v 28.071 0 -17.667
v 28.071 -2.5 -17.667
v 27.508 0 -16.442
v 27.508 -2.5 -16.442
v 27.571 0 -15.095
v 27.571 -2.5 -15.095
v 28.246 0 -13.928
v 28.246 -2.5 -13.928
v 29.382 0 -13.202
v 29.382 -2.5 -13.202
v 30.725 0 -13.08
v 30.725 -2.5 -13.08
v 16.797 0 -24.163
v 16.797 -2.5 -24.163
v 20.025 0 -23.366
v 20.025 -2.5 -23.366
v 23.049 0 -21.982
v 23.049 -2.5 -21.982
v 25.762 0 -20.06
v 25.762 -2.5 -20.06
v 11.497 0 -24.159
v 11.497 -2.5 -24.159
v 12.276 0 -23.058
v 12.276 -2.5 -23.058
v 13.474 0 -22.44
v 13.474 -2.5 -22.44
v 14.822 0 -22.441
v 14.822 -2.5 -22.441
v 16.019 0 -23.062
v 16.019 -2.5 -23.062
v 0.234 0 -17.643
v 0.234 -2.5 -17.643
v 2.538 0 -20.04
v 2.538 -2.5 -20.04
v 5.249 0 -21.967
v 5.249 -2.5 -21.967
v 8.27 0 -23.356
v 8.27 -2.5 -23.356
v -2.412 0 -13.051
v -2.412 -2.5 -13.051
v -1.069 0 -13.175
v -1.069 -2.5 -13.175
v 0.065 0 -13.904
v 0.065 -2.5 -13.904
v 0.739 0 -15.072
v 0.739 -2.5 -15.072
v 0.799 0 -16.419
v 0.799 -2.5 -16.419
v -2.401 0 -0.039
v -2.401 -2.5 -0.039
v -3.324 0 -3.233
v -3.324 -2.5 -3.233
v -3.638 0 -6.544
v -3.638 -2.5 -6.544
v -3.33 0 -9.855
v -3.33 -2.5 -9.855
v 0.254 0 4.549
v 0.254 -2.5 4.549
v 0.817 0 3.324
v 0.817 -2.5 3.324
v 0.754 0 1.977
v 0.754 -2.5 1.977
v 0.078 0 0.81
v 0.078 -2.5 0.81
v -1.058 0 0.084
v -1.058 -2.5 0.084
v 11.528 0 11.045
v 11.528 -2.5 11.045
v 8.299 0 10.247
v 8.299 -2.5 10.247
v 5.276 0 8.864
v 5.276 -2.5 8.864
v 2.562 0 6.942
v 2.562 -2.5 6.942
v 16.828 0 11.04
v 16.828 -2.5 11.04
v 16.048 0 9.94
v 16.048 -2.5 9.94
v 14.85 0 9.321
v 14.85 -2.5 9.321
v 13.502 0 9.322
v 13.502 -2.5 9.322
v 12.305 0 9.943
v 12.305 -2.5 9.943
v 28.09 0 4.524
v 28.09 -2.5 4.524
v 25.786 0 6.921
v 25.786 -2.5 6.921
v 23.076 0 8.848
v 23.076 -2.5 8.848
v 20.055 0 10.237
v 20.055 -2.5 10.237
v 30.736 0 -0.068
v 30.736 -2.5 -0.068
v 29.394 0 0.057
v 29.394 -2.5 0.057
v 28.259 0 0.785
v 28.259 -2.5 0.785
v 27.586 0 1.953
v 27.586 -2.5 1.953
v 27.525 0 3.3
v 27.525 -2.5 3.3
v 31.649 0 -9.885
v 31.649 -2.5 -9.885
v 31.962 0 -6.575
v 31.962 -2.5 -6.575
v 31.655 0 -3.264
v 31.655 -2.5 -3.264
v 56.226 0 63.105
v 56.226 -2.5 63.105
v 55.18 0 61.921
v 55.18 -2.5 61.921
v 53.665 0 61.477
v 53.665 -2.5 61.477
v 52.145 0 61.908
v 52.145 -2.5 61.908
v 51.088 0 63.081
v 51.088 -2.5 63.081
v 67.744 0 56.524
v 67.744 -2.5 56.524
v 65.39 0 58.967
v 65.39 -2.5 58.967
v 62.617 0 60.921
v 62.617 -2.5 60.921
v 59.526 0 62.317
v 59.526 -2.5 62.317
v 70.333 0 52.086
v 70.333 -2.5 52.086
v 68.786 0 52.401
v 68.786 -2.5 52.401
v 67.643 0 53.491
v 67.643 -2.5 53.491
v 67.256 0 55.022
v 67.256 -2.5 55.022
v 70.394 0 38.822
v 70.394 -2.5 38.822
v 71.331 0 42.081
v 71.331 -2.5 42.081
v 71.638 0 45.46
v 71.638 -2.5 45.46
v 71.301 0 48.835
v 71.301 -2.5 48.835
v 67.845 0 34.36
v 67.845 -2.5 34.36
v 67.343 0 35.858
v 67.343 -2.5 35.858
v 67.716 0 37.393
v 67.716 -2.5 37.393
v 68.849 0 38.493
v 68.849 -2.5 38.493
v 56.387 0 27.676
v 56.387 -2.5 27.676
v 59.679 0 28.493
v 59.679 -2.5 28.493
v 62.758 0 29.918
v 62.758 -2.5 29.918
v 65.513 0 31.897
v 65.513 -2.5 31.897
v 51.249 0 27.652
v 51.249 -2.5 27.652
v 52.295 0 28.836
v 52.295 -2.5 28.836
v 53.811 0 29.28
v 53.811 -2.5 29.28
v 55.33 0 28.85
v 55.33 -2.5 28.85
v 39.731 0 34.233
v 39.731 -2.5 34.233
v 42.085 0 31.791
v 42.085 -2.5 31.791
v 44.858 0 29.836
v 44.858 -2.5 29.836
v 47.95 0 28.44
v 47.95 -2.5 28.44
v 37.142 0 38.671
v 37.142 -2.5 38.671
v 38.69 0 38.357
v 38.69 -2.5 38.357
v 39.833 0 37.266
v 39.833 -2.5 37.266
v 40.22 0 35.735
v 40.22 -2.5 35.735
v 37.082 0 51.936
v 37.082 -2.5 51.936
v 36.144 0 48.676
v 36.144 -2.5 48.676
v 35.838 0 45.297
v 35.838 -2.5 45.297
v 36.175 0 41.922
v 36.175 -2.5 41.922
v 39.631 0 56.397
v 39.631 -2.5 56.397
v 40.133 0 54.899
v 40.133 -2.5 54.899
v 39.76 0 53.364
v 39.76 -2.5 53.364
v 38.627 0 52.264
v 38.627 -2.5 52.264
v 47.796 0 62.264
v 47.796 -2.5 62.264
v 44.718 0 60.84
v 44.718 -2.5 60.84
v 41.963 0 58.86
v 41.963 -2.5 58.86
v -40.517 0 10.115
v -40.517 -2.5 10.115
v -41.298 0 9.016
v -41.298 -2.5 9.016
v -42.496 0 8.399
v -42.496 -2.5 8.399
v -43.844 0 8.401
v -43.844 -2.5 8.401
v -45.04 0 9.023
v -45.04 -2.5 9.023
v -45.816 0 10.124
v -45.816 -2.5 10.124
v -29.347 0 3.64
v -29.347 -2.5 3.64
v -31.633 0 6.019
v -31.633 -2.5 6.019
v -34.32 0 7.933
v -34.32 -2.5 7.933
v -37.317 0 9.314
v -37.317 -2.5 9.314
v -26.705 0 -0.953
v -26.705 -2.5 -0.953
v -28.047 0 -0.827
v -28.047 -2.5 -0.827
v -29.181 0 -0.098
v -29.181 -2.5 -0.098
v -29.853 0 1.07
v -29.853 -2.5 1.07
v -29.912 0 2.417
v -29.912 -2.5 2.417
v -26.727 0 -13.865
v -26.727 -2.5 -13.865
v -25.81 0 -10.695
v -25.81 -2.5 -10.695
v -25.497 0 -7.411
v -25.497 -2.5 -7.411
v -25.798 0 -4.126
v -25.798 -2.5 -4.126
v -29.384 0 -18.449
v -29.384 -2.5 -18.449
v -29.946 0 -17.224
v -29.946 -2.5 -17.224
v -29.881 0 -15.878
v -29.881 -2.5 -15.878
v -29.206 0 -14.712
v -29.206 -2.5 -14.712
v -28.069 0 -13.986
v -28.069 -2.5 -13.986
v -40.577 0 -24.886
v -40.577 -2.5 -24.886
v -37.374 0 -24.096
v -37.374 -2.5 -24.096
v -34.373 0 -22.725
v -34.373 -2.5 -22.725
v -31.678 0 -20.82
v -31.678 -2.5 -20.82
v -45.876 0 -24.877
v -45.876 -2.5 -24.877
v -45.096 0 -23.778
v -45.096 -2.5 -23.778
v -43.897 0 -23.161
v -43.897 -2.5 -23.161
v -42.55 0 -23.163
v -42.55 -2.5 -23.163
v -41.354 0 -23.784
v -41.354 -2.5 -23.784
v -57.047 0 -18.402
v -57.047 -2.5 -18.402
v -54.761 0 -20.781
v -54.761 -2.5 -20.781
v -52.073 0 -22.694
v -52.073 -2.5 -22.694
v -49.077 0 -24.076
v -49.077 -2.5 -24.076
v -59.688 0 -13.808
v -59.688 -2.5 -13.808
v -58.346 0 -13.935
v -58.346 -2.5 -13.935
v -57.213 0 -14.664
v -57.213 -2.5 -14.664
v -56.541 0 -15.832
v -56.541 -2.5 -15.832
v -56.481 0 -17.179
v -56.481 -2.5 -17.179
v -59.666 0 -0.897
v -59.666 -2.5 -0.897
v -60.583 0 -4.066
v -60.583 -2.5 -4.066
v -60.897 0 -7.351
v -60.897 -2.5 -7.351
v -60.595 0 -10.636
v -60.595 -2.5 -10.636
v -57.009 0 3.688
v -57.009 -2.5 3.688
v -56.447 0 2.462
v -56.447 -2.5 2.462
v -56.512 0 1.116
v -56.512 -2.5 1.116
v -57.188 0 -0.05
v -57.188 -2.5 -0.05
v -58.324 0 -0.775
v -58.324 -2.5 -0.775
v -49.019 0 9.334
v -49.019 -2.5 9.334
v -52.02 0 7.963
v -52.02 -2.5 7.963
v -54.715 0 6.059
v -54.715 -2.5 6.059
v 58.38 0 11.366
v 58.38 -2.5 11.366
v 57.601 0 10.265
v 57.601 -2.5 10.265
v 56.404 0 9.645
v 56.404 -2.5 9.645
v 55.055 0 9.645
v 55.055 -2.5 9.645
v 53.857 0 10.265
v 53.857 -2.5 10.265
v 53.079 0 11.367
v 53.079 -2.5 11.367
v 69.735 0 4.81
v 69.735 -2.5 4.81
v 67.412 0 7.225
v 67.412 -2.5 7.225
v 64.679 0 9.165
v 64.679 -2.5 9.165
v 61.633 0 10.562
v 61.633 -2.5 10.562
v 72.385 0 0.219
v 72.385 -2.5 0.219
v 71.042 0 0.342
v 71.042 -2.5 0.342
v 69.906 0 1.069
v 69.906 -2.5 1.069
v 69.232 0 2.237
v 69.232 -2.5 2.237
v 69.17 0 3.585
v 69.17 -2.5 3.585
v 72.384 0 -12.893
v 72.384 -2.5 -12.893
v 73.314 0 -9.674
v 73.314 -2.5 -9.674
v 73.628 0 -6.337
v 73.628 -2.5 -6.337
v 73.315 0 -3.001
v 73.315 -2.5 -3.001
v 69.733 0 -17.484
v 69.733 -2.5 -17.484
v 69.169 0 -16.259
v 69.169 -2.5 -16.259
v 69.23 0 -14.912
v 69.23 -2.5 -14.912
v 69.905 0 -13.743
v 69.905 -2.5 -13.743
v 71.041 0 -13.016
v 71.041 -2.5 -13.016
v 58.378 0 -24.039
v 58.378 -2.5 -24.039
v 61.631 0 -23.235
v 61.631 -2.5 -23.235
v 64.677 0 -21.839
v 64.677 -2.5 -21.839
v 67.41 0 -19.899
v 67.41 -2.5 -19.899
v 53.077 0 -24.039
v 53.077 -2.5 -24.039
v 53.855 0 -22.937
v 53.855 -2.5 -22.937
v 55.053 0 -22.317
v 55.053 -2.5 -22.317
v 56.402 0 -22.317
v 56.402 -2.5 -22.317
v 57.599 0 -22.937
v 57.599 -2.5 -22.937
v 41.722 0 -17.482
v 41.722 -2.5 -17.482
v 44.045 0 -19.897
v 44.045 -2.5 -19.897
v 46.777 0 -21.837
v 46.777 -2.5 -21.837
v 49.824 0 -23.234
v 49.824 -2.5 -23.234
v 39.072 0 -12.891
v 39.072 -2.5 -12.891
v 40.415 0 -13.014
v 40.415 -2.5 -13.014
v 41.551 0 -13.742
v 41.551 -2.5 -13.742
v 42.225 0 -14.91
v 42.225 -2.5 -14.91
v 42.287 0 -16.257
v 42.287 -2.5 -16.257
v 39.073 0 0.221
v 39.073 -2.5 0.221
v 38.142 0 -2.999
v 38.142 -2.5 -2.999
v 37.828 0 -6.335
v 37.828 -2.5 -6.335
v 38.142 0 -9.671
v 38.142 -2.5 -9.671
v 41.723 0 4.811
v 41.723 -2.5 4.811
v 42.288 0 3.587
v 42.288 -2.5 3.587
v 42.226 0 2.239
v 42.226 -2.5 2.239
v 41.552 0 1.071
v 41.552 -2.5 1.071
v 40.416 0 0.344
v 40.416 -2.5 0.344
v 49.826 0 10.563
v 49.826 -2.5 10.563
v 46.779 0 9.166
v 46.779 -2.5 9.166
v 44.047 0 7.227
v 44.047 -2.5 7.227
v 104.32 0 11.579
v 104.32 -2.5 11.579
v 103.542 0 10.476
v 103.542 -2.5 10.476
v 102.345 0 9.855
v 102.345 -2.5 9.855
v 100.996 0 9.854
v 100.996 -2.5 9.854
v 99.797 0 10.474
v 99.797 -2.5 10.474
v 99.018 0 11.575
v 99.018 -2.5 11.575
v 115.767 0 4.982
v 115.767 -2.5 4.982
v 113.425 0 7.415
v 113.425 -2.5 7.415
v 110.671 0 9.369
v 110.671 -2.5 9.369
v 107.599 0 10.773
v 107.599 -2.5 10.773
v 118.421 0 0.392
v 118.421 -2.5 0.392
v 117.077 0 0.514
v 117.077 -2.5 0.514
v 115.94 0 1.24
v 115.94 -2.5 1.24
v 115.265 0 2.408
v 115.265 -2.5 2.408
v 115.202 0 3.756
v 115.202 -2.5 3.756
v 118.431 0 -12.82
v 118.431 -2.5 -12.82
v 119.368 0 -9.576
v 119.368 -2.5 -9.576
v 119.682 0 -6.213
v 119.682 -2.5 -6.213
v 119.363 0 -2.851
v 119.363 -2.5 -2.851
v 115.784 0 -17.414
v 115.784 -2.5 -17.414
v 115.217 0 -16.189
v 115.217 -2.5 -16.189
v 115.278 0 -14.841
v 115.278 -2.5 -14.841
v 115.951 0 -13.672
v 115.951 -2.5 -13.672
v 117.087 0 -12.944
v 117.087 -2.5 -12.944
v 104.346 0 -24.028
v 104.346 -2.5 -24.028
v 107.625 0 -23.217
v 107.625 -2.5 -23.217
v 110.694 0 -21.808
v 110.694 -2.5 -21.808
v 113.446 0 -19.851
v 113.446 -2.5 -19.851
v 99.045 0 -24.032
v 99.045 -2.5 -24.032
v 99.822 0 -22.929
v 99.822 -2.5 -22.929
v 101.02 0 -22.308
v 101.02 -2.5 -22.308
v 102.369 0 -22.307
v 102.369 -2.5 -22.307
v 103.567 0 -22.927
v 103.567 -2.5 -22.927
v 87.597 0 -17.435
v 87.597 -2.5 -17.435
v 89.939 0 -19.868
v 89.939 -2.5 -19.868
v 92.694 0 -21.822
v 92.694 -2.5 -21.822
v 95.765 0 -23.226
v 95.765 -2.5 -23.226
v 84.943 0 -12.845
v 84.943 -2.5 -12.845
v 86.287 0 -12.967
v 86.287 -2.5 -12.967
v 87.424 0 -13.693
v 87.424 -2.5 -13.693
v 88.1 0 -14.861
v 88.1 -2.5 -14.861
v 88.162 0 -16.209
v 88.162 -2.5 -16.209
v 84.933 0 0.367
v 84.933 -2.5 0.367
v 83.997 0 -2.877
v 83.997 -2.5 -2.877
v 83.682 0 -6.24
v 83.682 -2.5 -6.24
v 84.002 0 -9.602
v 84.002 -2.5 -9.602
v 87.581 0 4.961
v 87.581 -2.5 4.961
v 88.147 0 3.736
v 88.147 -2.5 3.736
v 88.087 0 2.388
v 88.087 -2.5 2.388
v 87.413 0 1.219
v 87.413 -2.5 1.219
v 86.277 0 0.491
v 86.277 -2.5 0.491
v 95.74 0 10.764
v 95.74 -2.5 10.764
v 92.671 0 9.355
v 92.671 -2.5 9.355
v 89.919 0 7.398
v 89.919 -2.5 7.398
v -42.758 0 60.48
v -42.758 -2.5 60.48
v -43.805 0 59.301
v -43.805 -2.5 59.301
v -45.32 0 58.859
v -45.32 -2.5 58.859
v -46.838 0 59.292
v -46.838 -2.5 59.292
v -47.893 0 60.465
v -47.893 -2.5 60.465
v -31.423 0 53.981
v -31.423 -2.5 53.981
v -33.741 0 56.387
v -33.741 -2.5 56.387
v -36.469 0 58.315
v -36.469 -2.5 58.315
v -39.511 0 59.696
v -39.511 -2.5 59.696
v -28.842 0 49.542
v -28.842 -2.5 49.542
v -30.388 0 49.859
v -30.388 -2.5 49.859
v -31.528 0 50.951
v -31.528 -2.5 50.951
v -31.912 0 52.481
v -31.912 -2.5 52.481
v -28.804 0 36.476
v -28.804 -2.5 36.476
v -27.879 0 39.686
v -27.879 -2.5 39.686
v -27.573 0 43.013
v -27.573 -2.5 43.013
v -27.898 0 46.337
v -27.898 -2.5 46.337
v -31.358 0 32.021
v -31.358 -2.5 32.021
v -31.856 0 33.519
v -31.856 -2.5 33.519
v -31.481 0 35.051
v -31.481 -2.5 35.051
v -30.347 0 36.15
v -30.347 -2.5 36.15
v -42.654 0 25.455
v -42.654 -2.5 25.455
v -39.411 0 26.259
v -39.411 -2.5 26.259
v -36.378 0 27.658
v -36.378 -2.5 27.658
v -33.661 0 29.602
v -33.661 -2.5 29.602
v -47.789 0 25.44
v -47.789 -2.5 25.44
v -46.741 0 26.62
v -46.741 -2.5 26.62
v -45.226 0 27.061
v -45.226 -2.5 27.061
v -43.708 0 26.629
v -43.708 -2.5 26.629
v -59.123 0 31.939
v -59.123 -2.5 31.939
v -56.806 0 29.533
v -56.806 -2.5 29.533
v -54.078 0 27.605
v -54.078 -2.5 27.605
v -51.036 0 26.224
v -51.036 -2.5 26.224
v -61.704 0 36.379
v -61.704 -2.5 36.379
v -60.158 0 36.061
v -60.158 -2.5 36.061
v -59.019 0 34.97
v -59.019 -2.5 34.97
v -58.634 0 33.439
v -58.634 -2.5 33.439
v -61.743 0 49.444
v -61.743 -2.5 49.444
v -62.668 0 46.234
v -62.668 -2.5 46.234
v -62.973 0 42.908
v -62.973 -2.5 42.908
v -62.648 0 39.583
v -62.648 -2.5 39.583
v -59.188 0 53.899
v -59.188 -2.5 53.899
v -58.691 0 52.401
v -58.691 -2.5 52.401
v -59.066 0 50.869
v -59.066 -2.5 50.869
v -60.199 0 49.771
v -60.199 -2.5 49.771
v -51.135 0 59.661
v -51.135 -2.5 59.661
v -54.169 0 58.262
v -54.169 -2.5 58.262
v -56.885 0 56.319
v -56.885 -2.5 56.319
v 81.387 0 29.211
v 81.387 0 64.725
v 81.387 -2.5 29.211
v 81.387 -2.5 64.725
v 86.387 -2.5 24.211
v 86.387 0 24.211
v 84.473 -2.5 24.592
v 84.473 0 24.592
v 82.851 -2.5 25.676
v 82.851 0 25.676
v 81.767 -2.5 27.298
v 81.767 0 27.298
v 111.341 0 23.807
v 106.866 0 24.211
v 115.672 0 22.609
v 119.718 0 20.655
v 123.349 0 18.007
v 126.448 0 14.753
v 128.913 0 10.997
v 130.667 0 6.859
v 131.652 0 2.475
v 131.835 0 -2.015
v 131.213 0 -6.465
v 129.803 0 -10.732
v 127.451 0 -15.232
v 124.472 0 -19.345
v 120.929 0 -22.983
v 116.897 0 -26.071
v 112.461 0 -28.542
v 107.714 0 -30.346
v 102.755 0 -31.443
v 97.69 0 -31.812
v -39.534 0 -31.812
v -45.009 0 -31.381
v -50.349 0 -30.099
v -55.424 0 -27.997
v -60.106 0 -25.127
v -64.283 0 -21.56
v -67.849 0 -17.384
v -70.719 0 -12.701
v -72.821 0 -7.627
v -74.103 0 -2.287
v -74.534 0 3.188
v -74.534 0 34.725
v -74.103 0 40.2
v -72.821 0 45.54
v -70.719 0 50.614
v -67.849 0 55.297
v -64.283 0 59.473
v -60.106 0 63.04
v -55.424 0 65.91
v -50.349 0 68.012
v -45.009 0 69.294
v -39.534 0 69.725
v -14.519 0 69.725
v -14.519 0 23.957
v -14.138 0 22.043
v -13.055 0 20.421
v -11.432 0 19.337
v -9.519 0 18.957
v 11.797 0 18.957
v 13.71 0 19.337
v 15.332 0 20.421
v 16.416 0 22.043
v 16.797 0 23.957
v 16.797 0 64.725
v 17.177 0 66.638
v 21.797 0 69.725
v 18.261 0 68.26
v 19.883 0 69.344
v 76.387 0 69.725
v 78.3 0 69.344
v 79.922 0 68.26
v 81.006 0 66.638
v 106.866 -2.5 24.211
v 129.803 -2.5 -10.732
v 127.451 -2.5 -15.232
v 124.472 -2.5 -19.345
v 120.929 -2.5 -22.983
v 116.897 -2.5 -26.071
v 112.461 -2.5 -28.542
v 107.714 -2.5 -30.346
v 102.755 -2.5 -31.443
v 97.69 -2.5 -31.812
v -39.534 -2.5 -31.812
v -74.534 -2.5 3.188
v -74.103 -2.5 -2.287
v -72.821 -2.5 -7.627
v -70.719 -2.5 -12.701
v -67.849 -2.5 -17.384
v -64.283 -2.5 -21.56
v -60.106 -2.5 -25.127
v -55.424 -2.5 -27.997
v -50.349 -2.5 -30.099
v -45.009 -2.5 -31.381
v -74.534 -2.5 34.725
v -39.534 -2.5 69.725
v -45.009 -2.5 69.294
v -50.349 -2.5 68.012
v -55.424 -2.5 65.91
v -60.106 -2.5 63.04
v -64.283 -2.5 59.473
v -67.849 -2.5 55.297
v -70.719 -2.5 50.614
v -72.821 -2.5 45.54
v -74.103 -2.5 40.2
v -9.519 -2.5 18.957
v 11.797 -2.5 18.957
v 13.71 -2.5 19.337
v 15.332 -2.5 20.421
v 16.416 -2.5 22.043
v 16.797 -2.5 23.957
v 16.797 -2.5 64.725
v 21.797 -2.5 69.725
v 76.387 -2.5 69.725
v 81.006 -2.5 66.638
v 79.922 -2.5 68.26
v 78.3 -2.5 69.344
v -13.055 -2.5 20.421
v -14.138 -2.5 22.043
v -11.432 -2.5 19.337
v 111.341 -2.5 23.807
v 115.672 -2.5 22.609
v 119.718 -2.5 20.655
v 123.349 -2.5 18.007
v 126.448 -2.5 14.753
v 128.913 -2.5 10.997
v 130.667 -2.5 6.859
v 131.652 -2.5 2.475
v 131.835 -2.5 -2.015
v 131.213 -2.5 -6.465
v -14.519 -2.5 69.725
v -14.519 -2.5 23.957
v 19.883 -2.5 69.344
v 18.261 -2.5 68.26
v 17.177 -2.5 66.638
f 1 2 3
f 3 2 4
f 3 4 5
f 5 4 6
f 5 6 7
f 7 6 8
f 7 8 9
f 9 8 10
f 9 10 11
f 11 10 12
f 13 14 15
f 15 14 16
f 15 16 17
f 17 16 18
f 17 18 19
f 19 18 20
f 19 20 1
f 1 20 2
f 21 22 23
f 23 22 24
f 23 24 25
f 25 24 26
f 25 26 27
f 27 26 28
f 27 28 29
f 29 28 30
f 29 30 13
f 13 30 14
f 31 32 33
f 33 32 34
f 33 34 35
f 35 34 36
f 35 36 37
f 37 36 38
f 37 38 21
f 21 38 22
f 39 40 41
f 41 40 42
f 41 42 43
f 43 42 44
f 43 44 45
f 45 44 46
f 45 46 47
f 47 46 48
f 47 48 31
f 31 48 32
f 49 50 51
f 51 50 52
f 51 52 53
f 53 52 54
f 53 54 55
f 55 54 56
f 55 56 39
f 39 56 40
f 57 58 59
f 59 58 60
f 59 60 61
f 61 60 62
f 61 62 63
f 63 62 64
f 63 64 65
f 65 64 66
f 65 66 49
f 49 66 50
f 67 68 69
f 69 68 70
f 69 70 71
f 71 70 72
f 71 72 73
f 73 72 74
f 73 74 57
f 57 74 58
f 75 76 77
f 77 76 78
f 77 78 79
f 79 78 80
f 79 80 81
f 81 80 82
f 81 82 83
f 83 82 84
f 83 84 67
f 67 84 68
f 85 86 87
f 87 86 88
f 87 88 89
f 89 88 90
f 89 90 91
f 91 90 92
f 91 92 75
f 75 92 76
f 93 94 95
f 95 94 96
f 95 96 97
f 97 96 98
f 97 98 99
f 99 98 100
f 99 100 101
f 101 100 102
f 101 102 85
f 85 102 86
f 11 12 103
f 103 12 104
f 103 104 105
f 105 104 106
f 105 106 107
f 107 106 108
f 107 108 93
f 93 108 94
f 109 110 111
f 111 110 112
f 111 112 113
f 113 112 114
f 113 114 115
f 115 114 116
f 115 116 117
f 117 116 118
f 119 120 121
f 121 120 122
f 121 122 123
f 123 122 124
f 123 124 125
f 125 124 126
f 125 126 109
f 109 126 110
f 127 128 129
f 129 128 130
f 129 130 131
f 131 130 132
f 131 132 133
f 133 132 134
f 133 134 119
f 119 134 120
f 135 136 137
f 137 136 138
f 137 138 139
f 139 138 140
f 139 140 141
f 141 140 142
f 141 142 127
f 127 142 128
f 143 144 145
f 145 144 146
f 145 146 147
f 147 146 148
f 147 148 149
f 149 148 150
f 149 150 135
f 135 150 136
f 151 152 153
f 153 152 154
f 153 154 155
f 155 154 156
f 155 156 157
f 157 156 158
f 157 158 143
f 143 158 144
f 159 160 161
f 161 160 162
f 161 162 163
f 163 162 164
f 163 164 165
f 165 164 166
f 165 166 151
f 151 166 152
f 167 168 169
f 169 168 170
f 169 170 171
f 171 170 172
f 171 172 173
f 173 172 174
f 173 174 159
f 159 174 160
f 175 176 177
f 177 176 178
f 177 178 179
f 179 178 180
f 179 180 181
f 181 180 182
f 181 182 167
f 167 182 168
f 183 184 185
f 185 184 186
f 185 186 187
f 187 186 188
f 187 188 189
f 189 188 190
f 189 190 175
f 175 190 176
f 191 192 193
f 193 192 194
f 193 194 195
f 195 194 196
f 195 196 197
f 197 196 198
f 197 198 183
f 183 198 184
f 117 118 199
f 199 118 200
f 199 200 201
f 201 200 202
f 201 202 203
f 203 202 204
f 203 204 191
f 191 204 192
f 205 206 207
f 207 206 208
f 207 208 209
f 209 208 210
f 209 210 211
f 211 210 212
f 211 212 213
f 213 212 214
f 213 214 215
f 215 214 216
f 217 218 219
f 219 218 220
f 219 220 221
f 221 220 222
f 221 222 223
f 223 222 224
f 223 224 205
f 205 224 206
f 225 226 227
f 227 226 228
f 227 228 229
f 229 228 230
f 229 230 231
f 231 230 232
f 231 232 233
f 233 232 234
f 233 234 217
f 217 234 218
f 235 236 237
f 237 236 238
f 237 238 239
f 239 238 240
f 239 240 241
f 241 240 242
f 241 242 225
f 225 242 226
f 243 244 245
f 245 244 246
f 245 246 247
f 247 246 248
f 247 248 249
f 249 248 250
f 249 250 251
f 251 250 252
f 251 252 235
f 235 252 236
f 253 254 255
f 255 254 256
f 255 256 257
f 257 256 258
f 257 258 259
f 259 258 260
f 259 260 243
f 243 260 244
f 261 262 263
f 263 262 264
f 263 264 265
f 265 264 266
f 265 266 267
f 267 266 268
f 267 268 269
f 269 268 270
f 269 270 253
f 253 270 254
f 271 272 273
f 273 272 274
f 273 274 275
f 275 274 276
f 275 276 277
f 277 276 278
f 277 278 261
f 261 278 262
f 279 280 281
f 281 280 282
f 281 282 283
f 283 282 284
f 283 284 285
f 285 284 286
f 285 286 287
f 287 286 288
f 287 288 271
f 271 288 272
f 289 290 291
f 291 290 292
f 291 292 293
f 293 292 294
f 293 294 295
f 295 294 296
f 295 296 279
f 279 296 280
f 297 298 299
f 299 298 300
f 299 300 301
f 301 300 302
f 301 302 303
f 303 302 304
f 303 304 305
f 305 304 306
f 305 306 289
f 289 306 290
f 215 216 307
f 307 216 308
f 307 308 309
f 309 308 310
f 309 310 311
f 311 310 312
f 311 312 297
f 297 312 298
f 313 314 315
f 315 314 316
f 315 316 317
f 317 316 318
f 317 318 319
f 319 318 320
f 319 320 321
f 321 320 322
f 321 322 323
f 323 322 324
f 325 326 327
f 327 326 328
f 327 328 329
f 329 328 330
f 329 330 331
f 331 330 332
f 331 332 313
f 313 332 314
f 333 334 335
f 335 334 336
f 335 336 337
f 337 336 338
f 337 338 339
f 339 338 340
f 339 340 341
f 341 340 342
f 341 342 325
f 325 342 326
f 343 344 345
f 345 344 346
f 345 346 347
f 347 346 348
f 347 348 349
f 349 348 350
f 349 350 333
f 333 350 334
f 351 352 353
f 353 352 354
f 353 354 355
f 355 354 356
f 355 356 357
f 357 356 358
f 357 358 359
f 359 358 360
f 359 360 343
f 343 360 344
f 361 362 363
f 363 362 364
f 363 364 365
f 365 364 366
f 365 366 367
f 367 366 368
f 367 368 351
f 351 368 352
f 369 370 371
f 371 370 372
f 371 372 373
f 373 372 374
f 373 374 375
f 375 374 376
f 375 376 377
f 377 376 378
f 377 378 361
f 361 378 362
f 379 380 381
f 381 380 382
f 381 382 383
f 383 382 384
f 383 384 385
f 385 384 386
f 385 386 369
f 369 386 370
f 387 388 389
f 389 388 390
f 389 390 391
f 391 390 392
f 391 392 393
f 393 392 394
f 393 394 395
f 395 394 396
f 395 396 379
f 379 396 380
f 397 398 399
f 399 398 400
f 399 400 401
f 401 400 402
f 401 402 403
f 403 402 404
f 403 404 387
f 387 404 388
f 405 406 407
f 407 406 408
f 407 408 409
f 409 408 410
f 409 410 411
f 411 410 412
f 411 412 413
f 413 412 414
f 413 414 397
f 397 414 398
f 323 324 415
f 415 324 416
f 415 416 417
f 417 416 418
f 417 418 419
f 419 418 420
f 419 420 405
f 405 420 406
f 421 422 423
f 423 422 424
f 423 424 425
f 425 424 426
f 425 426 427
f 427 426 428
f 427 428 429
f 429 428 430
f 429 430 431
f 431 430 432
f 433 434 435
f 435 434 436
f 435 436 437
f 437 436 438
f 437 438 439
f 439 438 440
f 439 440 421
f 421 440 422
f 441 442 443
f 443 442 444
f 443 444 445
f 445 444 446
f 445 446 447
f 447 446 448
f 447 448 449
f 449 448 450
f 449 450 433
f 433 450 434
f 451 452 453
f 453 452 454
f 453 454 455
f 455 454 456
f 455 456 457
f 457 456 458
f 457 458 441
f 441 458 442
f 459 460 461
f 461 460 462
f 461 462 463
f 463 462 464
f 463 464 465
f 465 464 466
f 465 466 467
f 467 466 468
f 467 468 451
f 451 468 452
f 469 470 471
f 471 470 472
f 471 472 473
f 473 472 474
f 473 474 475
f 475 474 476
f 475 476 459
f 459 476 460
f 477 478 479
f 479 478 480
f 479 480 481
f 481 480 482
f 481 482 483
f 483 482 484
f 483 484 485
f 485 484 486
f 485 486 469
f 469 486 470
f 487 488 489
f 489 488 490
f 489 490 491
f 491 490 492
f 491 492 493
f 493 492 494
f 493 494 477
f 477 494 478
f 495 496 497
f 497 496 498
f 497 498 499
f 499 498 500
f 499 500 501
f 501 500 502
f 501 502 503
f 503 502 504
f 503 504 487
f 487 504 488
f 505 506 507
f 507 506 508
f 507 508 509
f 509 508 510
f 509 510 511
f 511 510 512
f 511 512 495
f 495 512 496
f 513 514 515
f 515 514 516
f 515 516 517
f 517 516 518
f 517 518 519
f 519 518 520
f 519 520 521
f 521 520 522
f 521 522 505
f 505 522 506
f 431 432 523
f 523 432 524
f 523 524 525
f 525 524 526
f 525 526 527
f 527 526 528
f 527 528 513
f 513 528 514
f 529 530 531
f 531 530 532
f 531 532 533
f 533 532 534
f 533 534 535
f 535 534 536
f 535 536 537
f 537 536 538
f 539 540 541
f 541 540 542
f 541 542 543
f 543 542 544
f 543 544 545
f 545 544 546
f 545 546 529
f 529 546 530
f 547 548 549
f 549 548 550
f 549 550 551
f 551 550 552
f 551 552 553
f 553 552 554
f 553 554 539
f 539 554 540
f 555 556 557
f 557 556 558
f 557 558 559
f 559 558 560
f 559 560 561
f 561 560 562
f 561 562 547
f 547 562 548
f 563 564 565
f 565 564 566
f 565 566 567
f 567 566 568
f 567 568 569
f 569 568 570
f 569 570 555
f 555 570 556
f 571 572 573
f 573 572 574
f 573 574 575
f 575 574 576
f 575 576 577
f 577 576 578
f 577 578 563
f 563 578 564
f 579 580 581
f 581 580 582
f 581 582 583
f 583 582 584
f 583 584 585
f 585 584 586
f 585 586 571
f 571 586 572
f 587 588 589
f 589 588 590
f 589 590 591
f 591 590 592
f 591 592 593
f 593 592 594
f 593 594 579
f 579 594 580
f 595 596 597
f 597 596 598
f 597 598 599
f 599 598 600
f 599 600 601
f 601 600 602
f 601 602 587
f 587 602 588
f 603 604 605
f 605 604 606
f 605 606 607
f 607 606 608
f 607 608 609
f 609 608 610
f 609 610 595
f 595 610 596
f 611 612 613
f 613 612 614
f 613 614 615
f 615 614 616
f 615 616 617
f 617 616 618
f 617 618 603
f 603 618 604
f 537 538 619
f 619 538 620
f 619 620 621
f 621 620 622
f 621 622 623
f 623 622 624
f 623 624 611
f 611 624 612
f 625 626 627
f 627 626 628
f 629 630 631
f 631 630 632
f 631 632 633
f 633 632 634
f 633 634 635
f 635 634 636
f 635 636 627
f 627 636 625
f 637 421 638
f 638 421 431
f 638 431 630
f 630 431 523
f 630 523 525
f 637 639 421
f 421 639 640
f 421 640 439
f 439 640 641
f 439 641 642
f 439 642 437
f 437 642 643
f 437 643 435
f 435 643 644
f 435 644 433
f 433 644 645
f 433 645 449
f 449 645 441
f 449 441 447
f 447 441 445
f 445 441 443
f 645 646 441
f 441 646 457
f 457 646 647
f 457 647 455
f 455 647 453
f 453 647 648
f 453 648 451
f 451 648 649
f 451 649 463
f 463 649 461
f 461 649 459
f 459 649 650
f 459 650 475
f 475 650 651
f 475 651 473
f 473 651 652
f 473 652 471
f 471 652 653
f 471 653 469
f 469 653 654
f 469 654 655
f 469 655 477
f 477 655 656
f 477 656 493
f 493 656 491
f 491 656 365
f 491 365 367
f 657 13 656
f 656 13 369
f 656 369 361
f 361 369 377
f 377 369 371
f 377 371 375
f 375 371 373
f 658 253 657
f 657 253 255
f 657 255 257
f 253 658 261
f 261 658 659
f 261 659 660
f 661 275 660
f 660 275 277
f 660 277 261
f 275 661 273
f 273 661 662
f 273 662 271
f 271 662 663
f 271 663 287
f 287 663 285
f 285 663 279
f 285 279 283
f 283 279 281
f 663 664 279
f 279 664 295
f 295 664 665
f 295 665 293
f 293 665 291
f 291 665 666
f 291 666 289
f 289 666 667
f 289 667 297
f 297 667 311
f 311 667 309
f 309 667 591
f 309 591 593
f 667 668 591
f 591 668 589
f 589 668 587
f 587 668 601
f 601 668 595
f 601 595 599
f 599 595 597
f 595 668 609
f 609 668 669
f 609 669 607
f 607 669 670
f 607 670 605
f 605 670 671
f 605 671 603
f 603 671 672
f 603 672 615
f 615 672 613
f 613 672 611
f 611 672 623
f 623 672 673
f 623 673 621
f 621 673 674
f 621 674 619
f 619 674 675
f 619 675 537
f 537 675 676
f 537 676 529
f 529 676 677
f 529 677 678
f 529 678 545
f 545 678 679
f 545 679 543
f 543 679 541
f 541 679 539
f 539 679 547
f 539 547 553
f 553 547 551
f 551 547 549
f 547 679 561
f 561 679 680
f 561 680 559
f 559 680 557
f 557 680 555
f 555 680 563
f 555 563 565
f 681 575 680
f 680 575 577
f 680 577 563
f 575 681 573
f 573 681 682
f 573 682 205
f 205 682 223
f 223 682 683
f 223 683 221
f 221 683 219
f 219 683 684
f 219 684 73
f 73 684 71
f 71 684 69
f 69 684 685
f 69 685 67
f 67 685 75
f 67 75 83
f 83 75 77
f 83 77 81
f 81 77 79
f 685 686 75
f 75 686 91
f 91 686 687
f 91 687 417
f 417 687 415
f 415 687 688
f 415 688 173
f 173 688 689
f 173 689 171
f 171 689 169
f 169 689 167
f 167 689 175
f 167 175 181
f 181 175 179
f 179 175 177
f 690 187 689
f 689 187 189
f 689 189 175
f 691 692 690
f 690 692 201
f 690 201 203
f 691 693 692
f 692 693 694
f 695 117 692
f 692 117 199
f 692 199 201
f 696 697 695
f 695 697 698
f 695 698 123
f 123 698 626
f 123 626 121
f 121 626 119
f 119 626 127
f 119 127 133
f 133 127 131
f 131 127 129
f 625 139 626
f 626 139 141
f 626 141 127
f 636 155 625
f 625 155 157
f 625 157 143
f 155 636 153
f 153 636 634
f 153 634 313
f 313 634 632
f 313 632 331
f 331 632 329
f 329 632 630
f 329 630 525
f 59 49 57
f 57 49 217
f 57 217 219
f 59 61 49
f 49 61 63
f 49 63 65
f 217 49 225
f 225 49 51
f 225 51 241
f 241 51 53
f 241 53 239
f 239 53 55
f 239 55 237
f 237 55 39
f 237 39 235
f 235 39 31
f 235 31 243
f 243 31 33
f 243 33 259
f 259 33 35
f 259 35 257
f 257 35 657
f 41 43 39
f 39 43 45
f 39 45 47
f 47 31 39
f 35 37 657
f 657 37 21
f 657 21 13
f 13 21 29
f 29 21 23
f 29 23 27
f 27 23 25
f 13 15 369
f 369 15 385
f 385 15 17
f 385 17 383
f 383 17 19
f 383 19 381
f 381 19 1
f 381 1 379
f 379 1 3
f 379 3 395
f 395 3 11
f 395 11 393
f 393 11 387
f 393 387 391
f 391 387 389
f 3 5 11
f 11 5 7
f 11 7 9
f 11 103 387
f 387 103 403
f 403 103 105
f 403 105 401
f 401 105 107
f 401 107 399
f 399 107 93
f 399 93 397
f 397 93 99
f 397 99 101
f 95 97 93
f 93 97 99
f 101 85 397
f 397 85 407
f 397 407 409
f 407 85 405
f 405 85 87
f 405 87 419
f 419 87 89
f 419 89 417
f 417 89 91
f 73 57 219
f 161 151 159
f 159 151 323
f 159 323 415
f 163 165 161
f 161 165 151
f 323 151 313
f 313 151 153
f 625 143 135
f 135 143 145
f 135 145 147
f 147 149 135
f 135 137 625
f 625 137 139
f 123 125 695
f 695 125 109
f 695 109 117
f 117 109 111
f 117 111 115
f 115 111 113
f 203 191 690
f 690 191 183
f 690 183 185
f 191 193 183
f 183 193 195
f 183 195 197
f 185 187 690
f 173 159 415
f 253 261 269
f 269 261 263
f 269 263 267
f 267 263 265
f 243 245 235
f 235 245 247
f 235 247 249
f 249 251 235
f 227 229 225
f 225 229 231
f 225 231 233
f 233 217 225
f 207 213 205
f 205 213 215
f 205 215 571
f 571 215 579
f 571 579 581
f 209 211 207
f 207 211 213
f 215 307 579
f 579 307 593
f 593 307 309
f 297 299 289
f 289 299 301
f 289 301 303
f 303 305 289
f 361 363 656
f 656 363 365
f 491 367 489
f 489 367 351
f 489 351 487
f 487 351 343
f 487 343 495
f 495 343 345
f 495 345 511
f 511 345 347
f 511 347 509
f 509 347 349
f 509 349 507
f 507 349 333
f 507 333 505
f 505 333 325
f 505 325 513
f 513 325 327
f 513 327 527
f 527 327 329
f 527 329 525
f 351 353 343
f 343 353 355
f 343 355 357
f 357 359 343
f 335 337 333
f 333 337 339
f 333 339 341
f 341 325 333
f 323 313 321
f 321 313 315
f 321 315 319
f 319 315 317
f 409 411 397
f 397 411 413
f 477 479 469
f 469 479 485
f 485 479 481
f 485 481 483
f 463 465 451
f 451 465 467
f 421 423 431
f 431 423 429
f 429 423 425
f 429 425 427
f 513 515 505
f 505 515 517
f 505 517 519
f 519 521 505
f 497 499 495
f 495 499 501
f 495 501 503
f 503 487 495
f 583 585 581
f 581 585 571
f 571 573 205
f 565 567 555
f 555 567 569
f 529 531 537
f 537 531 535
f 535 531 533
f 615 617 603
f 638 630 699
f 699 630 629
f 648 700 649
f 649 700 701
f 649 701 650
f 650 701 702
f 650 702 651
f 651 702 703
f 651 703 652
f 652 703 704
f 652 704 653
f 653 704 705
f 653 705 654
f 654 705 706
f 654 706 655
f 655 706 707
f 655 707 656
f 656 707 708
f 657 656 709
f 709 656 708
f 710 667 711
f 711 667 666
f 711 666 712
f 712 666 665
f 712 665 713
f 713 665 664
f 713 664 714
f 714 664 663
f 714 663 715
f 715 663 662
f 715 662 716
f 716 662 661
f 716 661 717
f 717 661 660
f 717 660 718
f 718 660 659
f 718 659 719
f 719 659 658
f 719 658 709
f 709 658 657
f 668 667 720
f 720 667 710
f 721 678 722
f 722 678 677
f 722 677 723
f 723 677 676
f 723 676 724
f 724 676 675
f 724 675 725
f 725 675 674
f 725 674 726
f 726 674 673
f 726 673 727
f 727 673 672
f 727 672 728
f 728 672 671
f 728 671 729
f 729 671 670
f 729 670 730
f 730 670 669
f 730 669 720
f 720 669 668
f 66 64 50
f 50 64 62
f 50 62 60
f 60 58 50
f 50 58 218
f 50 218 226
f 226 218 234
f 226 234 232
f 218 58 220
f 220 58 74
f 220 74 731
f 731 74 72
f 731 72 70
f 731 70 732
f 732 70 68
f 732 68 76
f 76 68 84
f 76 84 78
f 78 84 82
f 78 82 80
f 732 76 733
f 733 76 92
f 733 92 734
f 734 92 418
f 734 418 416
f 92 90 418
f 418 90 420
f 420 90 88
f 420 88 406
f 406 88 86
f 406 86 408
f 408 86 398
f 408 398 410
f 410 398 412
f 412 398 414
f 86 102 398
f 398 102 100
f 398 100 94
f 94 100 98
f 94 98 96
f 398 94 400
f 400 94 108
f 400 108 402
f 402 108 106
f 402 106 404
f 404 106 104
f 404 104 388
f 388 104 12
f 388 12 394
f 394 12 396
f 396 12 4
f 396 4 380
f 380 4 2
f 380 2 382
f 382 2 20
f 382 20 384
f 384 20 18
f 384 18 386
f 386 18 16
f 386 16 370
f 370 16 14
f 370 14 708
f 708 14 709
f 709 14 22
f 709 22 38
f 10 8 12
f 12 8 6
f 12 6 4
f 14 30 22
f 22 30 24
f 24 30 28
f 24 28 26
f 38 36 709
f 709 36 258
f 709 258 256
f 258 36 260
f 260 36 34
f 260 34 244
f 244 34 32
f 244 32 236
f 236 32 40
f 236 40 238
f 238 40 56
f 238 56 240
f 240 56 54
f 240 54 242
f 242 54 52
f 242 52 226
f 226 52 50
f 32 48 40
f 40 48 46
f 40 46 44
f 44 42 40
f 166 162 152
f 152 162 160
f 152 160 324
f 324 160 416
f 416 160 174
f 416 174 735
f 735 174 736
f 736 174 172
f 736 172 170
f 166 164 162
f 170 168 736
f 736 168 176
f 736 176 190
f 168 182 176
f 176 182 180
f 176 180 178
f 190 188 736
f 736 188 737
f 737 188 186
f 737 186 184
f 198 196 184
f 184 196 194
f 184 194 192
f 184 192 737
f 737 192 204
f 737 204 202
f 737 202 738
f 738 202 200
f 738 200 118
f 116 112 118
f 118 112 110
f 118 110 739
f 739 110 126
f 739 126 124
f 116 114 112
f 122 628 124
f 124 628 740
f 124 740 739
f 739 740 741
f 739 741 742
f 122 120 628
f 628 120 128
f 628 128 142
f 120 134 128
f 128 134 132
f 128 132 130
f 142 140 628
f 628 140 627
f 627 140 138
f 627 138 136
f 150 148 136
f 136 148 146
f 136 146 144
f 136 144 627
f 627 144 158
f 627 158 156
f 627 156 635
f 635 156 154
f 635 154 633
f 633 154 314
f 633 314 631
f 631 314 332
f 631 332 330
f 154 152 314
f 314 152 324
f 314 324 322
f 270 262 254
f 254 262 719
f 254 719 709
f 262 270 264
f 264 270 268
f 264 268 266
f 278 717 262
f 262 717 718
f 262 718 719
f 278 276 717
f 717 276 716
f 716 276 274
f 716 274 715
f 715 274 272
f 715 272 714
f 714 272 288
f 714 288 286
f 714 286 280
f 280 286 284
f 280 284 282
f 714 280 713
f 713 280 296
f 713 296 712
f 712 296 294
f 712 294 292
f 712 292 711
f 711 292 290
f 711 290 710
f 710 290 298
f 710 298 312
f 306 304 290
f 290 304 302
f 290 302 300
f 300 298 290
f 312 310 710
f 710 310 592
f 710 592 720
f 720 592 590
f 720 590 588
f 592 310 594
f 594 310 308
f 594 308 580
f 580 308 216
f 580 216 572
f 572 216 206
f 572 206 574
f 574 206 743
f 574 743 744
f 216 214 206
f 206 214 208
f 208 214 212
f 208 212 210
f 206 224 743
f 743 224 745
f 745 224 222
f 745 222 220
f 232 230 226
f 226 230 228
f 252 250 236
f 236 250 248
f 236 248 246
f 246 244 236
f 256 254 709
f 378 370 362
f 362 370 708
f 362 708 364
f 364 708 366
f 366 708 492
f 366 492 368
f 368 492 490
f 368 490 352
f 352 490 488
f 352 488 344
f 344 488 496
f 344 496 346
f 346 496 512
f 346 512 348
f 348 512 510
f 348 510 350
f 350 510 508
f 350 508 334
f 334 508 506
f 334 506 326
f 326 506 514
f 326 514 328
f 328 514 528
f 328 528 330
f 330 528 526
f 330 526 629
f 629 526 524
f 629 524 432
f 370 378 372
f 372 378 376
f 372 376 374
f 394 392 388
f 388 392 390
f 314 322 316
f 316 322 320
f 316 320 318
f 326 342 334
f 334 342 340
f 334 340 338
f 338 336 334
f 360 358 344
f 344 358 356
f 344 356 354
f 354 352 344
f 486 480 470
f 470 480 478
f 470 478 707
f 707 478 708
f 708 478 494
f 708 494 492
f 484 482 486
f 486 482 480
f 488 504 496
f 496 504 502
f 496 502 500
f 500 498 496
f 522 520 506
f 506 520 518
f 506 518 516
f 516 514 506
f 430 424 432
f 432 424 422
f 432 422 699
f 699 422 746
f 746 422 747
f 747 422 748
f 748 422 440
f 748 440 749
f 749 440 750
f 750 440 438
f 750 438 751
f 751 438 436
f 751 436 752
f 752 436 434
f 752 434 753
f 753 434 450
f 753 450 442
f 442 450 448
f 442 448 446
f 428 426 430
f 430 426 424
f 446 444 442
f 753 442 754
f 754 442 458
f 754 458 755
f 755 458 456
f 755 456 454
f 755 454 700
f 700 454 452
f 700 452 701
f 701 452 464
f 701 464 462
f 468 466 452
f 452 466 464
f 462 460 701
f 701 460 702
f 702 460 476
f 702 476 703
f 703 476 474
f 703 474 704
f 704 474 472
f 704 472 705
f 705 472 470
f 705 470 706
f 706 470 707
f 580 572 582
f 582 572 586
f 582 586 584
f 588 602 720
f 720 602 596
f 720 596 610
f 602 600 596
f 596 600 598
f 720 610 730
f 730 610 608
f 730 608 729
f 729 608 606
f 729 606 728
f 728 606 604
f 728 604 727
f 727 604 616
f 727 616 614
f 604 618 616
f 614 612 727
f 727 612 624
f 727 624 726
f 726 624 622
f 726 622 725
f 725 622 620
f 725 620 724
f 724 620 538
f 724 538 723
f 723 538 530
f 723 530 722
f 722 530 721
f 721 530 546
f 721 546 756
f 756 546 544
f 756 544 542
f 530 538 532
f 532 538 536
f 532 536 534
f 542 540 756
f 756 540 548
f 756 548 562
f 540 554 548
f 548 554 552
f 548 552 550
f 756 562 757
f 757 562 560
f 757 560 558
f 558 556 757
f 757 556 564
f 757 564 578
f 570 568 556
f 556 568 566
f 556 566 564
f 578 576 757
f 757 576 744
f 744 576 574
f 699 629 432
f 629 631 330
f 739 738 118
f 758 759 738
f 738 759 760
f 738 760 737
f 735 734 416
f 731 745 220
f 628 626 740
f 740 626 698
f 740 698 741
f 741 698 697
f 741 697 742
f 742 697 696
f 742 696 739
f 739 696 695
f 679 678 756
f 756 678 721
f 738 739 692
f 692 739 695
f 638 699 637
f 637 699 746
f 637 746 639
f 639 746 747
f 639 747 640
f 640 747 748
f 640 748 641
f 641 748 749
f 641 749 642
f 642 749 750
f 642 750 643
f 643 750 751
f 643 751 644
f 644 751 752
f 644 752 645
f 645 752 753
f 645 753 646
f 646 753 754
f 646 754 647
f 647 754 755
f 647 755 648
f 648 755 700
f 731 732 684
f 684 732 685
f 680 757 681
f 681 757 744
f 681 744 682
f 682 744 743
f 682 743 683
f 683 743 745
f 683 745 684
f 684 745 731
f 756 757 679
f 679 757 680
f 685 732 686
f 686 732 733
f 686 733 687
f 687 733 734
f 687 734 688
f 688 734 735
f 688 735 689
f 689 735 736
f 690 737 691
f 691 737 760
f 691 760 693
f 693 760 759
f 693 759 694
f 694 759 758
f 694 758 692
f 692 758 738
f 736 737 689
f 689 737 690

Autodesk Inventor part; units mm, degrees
ref_plane "YZ Plane" through (0, 0, 0) normal (1, 0, 0) x (0, 1, 0)
ref_plane "XZ Plane" through (0, 0, 0) normal (0, 1, 0) x (-1, 0, 0)
ref_plane "XY Plane" through (0, 0, 0) normal (0, 0, 1) x (1, 0, 0)
sketch "BASEsc" plane through (0, 0, 0) normal (0, 1, 0) x (-1, 0, 0)
  arc A0 (-30.7364, -0.0681) -> (-28.0904, 4.5242) centre (-30.3216, 2.7513) ccw
  arc A1 (-16.8277, 11.04) -> (-11.5277, 11.0446) centre (-14.1786, 12.0904) ccw
  arc A2 (-11.4967, -24.1586) -> (-16.7967, -24.1633) centre (-14.1458, -25.2091) ccw
  arc A3 (-0.2535, 4.5487) -> (2.4005, -0.0389) centre (1.9807, 2.7798) ccw
  arc A4 (-28.0709, -17.6674) -> (-30.7249, -13.0798) centre (-30.3051, -15.8984) ccw
  circle A5 centre (-14.1622, -6.5593) radius 17.8
  arc A6 (2.412, -13.0506) -> (-0.234, -17.6429) centre (1.9972, -15.87) ccw
  circle A7 centre (-55.7283, -6.3362) radius 17.9
  arc A8 (-58.3938, 11.2631) -> (-53.0938, 11.2678) centre (-55.7447, 12.3136) ccw
  arc A9 (-41.8196, 4.7719) -> (-39.1656, 0.1843) centre (-39.5854, 3.0029) ccw
  arc A10 (-72.3025, 0.1551) -> (-69.6565, 4.7474) centre (-71.8877, 2.9745) ccw
  arc A11 (-69.637, -17.4442) -> (-72.291, -12.8566) centre (-71.8712, -15.6753) ccw
  arc A12 (-53.0767, -24.0387) -> (-58.3776, -24.039) centre (-55.7271, -25.0859) ccw
  arc A13 (-39.1541, -12.8274) -> (-41.8001, -17.4197) centre (-39.569, -15.6468) ccw
  circle A14 centre (-101.6822, -6.2265) radius 18
  arc A15 (-99.0445, -24.0322) -> (-104.3463, -24.0282) centre (-101.6962, -25.0761) ccw
  arc A16 (-39.0717, -12.8911) -> (-41.7218, -17.4819) centre (-39.49, -15.71) ccw
  arc A17 (-41.7233, 4.8114) -> (-39.0725, 0.2209) centre (-39.4912, 3.0397) ccw
  arc A18 (-58.3799, 11.3664) -> (-53.079, 11.3667) centre (-55.7295, 12.4135) ccw
  arc A19 (-72.3849, 0.2188) -> (-69.7348, 4.8096) centre (-71.9666, 3.0377) ccw
  arc A20 (-69.7334, -17.4837) -> (-72.3841, -12.8932) centre (-71.9654, -15.7121) ccw
  circle A21 centre (43.1966, -7.3809) radius 17.7
  arc A22 (45.8761, -24.8769) -> (40.5769, -24.886) centre (43.2283, -25.9306) ccw
  circle A23 centre (45.2732, 42.9601) radius 17.7
  arc A24 (47.7889, 25.4398) -> (42.6535, 25.455) centre (45.2175, 24.2112) ccw
  arc A25 (-51.2492, 27.6525) -> (-56.3871, 27.6758) centre (-53.8237, 26.4307) ccw
  circle A26 centre (-53.7378, 45.3786) radius 17.9
  arc A27 (-84.9432, -12.845) -> (-87.5975, -17.4345) centre (-85.365, -15.6634) ccw
  arc A28 (-87.5809, 4.9607) -> (-84.9334, 0.3672) centre (-85.351, 3.1862) ccw
  arc A29 (-104.3199, 11.5792) -> (-99.0181, 11.5753) centre (-101.6682, 12.6231) ccw
  arc A30 (-118.4212, 0.3921) -> (-115.7669, 4.9816) centre (-117.9994, 3.2104) ccw
  arc A31 (-115.7835, -17.4136) -> (-118.431, -12.8202) centre (-118.0134, -15.6392) ccw
  arc A32 (-37.1422, 38.6707) -> (-39.7313, 34.2328) centre (-37.3714, 35.8302) ccw
  arc A33 (-39.6308, 56.3969) -> (-37.082, 51.9357) centre (-37.2854, 54.7782) ccw
  arc A34 (-56.2264, 63.1048) -> (-51.0885, 63.0815) centre (-53.6518, 64.3265) ccw
  arc A35 (-70.3334, 52.0865) -> (-67.7443, 56.5244) centre (-70.1042, 54.927) ccw
  arc A36 (-67.8448, 34.3603) -> (-70.3936, 38.8215) centre (-70.1901, 35.9791) ccw
  arc A37 (61.7041, 36.3785) -> (59.1232, 31.9388) centre (61.4824, 33.5374) ccw
  arc A38 (59.1885, 53.8989) -> (61.7429, 49.4439) centre (61.5381, 52.2863) ccw
  arc A39 (42.7576, 60.4804) -> (47.8929, 60.4652) centre (45.3289, 61.7089) ccw
  arc A40 (28.8424, 49.5417) -> (31.4233, 53.9813) centre (29.0641, 52.3828) ccw
  arc A41 (31.358, 32.0213) -> (28.8036, 36.4763) centre (29.0084, 33.6339) ccw
  arc A42 (59.6883, -13.8084) -> (57.0466, -18.4022) centre (59.2769, -16.6283) ccw
  arc A43 (57.0088, 3.6876) -> (59.6663, -0.8971) centre (59.2452, 1.9214) ccw
  arc A44 (40.5171, 10.1151) -> (45.8163, 10.1242) centre (43.1649, 11.1688) ccw
  arc A45 (26.7049, -0.9534) -> (29.3466, 3.6404) centre (27.1162, 1.8665) ccw
  arc A46 (29.3843, -18.4494) -> (26.7269, -13.8647) centre (27.1479, -16.6832) ccw
  line L0 (39.5339, -31.8115) -> (-97.6905, -31.8115)
  line L1 (-132.6905, 3.1885) -> (-132.6905, 34.7246)
  line L2 (-76.3868, 69.7246) -> (-21.7967, 69.7246)
  line L3 (74.5339, 34.7246) -> (74.5339, 3.1885)
  arc A47 (34.5339, -31.8115) -> (74.5339, 8.1885) centre (34.5339, 8.1885) ccw
  arc A48 (74.5339, 34.7246) -> (39.5339, 69.7246) centre (39.5339, 34.7246) ccw
  arc A49 (39.5339, -31.8115) -> (74.5339, 3.1885) centre (39.5339, 3.1885) ccw
  arc A50 (-132.6905, 3.1885) -> (-97.6905, -31.8115) centre (-97.6905, 3.1885) ccw
  arc A51 (-97.6905, 69.7246) -> (-132.6905, 34.7246) centre (-97.6905, 34.7246) ccw
  line L4 (-86.3868, 24.2112) -> (-132.6905, 24.2112)
  line L5 (-132.6905, 24.2112) -> (-132.6905, 69.7246)
  line L6 (-132.6905, 69.7246) -> (-81.3868, 69.7246)
  line L7 (-81.3868, 64.7246) -> (-81.3868, 29.2112)
  line L8 (14.5191, 69.7246) -> (-16.7967, 69.7246)
  line L9 (-16.7967, 64.7246) -> (-16.7967, 23.9565)
  line L10 (-11.7967, 18.9565) -> (9.5191, 18.9565)
  line L11 (14.5191, 23.9565) -> (14.5191, 69.7246)
  arc A52 (9.5191, 18.9565) -> (14.5191, 23.9565) centre (9.5191, 23.9565) ccw
  arc A53 (-16.7967, 23.9565) -> (-11.7967, 18.9565) centre (-11.7967, 23.9565) ccw
  arc A54 (-86.3868, 24.2112) -> (-81.3868, 29.2112) centre (-86.3868, 29.2112) ccw
  arc A55 (-76.3868, 69.7246) -> (-81.3868, 64.7246) centre (-76.3868, 64.7246) ccw
  arc A56 (-16.7967, 64.7246) -> (-21.7967, 69.7246) centre (-21.7967, 64.7246) ccw
  line L12 (39.5339, 69.7246) -> (-21.7967, 69.7246)
  point P0 (0, 0)
  point P1 (-14.1467, -24.3593)
  point P2 (-27.8531, 1.3272)
  point P3 (-14.1777, 9.2407)
  point P4 (-14.1467, -22.3593)
  point P5 (-0.4868, 1.3541)
  point P6 (-27.8376, -14.4728)
  point P7 (-0.4712, -14.4459)
  point P8 (-41.5661, 0.2232)
  point P9 (-55.7127, -24.2361)
  point P10 (-55.7438, 9.4638)
  point P11 (-42.0529, 1.5773)
  point P12 (-69.4193, 1.5504)
  point P13 (-69.4038, -14.2496)
  point P14 (-55.7127, -22.2361)
  point P15 (-42.0374, -14.2227)
  point P16 (-87.52, 0.3329)
  point P17 (-101.6665, -24.2265)
  point P18 (-101.6977, 9.5735)
  point P19 (-88.0068, 1.6869)
  point P20 (-115.3732, 1.6601)
  point P21 (-115.3576, -14.1399)
  point P22 (-101.6665, -22.2265)
  point P23 (-87.9913, -14.1131)
  point P24 (-41.9507, -14.2726)
  point P25 (-41.9663, 1.6273)
  point P26 (-55.7439, 9.5638)
  point P27 (-69.5059, 1.6003)
  point P28 (-69.4903, -14.2997)
  point P29 (57.3588, -0.8216)
  point P30 (29.5211, -15.2943)
  point P31 (56.872, 0.5325)
  point P32 (43.212, -25.0809)
  point P33 (29.5056, 0.5057)
  point P34 (43.1811, 8.4191)
  point P35 (56.8875, -15.2675)
  point P36 (43.212, -23.0809)
  point P37 (59.4354, 49.5194)
  point P38 (31.5978, 35.0467)
  point P39 (58.9487, 50.8735)
  point P40 (45.2887, 25.2601)
  point P41 (31.5823, 50.8467)
  point P42 (45.2577, 58.7601)
  point P43 (58.9642, 35.0735)
  point P44 (45.2887, 27.0601)
  point P45 (-40.0468, 37.492)
  point P46 (-39.5756, 51.9379)
  point P47 (-40.0623, 53.292)
  point P48 (-53.7222, 29.2786)
  point P49 (-53.7222, 27.4786)
  point P50 (-53.7533, 61.1786)
  point P51 (-67.4287, 53.2652)
  point P52 (-67.4132, 37.4652)
  point P53 (-87.818, -14.2129)
  point P54 (-87.8336, 1.7871)
  point P55 (-101.6979, 9.7735)
  point P56 (-115.5464, 1.7599)
  point P57 (-115.5308, -14.2401)
  point P58 (-39.787, 37.3421)
  point P59 (-39.8026, 53.4421)
  point P60 (-53.7534, 61.4786)
  point P61 (-67.6886, 53.4151)
  point P62 (-67.673, 37.3151)
  point P63 (59.0507, 35.0234)
  point P64 (59.0353, 50.9234)
  point P65 (45.2578, 58.8601)
  point P66 (31.4957, 50.8967)
  point P67 (31.5111, 34.9967)
  point P68 (56.8009, -15.2175)
  point P69 (56.7855, 0.4824)
  point P70 (43.1812, 8.3191)
  point P71 (29.5923, 0.4557)
  point P72 (29.6077, -15.2442)
  point P73 (-97.6905, 69.7246)
  point P74 (-16.7967, 69.7246)
  point P75 (-67.8448, 34.3603)
  point P76 (-39.7313, 34.2328)
  point P77 (-37.1422, 38.6707)
  point P78 (-37.082, 51.9357)
  point P79 (-51.0885, 63.0815)
  point P80 (-67.7443, 56.5244)
  point P81 (-70.3334, 52.0865)
  point P82 (-118.431, -12.8202)
  point P83 (-115.7835, -17.4136)
  point P84 (-87.5975, -17.4345)
  point P85 (-84.9334, 0.3672)
  point P86 (-87.5809, 4.9607)
  point P87 (-104.3199, 11.5792)
  point P88 (-115.7669, 4.9816)
  point P89 (-118.4212, 0.3921)
  point P90 (-72.3841, -12.8932)
  point P91 (-39.0725, 0.2209)
  point P92 (-41.7233, 4.8114)
  point P93 (-53.079, 11.3667)
  point P94 (-58.3799, 11.3664)
  point P95 (-69.7348, 4.8096)
  point P96 (-72.3849, 0.2188)
  point P97 (-0.234, -17.6429)
  point P98 (2.412, -13.0506)
  point P99 (2.4005, -0.0389)
  point P100 (-0.2535, 4.5487)
  point P101 (-11.5277, 11.0446)
  point P102 (-16.8277, 11.04)
  point P103 (-28.0904, 4.5242)
  point P104 (-30.7364, -0.0681)
  point P105 (-28.0709, -17.6674)
  point P106 (29.3843, -18.4494)
  point P107 (59.6883, -13.8084)
  point P108 (59.6663, -0.8971)
  point P109 (57.0088, 3.6876)
  point P110 (40.5171, 10.1151)
  point P111 (29.3466, 3.6404)
  point P112 (26.7049, -0.9534)
  point P113 (47.8929, 60.4652)
  point P114 (31.4233, 53.9813)
  point P115 (28.8424, 49.5417)
  dimension "d0" = 35.6
  dimension "d1" = 2
  dimension "d2" = 35.8
  dimension "d3" = 2
  dimension "d4" = 36
  dimension "d5" = 2
  dimension "d8" = 360
  dimension "d10" = 35.4
  dimension "d11" = 2
  dimension "d12" = 35.4
  dimension "d13" = 1.8
  dimension "d14" = 35.8
  dimension "d15" = 1.8
  dimension "d18" = 360
  dimension "d22" = 360
  dimension "d26" = 360
  dimension "d30" = 360
  dimension "d32" = 40
  dimension "d33" = 35
  dimension "d34" = 35
  dimension "d35" = 35
  dimension "d36" = 5
extrude "押し出し1" add sketch "BASEsc" against normal blind 2.5 contours A5 A0 | A0 A5 A1 A3 A6 A2 A4 | A4 A5 | A5 A1 | A2 A5 | A5 A3 | A6 A5 | A7 A16 A12 A20 A19 A18 A17 | A17 A7 | A7 A16 | A18 A7 | A7 A12 | A19 A7 | A7 A20 | A14 A27 A15 A31 A30 A29 A28 | A28 A14 | A14 A27 | A29 A14 | A14 A15 | A30 A14 | A14 A31 | A21 A42 A22 A46 A45 A44 A43 | A43 A21 | A21 A42 | A44 A21 | A21 A22 | A45 A21 | A21 A46 | A23 A37 A24 A41 A40 A39 A38 | A38 A23 | A23 A37 | A39 A23 | A23 A24 | A40 A23 | A23 A41 | A26 A25 | A25 A26 A36 A35 A34 A33 A32 | A32 A26 | A26 A36 | A26 A35 | A33 A26 | A26 A34 | L5 L6 A51 | L0 A47 L3 A49 | L0 A50 L1 L4 A54 L7 A55 L2 A56 L9 A53 L10 A52 L11 L12 A48 L3 A47 | L11 A52 L10 A53 L9 A56 L12 L8
extrude "押し出し2" cut sketch "BASEsc" against normal through all contours A0 A5 A1 A3 A6 A2 A4 | A7 A16 A12 A20 A19 A18 A17 | A14 A27 A15 A31 A30 A29 A28 | A21 A42 A22 A46 A45 A44 A43 | A23 A37 A24 A41 A40 A39 A38 | A25 A26 A36 A35 A34 A33 A32
extrude "押し出し3" cut sketch "BASEsc" against normal blind 10 contours L5 L6 A51 | L11 A52 L10 A53 L9 A56 L12 L8
fillet "フィレット1" radius 25 1 edges at (132.6905, -1.25, 24.2112)
equation "\"BendRadius\" = Thickness"
equation "\"BendReliefWidth\" = Thickness"
equation "\"BendReliefDepth\" = 0.5 * Thickness"
equation "\"CornerReliefSize\" = 4 * Thickness"
equation "\"MinimumRemnant\" = 2 * Thickness"
equation "\"TransitionRadius\" = BendRadius"
equation "\"JacobiRadiusSize\" = BendRadius"
equation "\"GapSize\" = Thickness"
equation "\"Thickness\" = 0.5"
properties part number "template"
